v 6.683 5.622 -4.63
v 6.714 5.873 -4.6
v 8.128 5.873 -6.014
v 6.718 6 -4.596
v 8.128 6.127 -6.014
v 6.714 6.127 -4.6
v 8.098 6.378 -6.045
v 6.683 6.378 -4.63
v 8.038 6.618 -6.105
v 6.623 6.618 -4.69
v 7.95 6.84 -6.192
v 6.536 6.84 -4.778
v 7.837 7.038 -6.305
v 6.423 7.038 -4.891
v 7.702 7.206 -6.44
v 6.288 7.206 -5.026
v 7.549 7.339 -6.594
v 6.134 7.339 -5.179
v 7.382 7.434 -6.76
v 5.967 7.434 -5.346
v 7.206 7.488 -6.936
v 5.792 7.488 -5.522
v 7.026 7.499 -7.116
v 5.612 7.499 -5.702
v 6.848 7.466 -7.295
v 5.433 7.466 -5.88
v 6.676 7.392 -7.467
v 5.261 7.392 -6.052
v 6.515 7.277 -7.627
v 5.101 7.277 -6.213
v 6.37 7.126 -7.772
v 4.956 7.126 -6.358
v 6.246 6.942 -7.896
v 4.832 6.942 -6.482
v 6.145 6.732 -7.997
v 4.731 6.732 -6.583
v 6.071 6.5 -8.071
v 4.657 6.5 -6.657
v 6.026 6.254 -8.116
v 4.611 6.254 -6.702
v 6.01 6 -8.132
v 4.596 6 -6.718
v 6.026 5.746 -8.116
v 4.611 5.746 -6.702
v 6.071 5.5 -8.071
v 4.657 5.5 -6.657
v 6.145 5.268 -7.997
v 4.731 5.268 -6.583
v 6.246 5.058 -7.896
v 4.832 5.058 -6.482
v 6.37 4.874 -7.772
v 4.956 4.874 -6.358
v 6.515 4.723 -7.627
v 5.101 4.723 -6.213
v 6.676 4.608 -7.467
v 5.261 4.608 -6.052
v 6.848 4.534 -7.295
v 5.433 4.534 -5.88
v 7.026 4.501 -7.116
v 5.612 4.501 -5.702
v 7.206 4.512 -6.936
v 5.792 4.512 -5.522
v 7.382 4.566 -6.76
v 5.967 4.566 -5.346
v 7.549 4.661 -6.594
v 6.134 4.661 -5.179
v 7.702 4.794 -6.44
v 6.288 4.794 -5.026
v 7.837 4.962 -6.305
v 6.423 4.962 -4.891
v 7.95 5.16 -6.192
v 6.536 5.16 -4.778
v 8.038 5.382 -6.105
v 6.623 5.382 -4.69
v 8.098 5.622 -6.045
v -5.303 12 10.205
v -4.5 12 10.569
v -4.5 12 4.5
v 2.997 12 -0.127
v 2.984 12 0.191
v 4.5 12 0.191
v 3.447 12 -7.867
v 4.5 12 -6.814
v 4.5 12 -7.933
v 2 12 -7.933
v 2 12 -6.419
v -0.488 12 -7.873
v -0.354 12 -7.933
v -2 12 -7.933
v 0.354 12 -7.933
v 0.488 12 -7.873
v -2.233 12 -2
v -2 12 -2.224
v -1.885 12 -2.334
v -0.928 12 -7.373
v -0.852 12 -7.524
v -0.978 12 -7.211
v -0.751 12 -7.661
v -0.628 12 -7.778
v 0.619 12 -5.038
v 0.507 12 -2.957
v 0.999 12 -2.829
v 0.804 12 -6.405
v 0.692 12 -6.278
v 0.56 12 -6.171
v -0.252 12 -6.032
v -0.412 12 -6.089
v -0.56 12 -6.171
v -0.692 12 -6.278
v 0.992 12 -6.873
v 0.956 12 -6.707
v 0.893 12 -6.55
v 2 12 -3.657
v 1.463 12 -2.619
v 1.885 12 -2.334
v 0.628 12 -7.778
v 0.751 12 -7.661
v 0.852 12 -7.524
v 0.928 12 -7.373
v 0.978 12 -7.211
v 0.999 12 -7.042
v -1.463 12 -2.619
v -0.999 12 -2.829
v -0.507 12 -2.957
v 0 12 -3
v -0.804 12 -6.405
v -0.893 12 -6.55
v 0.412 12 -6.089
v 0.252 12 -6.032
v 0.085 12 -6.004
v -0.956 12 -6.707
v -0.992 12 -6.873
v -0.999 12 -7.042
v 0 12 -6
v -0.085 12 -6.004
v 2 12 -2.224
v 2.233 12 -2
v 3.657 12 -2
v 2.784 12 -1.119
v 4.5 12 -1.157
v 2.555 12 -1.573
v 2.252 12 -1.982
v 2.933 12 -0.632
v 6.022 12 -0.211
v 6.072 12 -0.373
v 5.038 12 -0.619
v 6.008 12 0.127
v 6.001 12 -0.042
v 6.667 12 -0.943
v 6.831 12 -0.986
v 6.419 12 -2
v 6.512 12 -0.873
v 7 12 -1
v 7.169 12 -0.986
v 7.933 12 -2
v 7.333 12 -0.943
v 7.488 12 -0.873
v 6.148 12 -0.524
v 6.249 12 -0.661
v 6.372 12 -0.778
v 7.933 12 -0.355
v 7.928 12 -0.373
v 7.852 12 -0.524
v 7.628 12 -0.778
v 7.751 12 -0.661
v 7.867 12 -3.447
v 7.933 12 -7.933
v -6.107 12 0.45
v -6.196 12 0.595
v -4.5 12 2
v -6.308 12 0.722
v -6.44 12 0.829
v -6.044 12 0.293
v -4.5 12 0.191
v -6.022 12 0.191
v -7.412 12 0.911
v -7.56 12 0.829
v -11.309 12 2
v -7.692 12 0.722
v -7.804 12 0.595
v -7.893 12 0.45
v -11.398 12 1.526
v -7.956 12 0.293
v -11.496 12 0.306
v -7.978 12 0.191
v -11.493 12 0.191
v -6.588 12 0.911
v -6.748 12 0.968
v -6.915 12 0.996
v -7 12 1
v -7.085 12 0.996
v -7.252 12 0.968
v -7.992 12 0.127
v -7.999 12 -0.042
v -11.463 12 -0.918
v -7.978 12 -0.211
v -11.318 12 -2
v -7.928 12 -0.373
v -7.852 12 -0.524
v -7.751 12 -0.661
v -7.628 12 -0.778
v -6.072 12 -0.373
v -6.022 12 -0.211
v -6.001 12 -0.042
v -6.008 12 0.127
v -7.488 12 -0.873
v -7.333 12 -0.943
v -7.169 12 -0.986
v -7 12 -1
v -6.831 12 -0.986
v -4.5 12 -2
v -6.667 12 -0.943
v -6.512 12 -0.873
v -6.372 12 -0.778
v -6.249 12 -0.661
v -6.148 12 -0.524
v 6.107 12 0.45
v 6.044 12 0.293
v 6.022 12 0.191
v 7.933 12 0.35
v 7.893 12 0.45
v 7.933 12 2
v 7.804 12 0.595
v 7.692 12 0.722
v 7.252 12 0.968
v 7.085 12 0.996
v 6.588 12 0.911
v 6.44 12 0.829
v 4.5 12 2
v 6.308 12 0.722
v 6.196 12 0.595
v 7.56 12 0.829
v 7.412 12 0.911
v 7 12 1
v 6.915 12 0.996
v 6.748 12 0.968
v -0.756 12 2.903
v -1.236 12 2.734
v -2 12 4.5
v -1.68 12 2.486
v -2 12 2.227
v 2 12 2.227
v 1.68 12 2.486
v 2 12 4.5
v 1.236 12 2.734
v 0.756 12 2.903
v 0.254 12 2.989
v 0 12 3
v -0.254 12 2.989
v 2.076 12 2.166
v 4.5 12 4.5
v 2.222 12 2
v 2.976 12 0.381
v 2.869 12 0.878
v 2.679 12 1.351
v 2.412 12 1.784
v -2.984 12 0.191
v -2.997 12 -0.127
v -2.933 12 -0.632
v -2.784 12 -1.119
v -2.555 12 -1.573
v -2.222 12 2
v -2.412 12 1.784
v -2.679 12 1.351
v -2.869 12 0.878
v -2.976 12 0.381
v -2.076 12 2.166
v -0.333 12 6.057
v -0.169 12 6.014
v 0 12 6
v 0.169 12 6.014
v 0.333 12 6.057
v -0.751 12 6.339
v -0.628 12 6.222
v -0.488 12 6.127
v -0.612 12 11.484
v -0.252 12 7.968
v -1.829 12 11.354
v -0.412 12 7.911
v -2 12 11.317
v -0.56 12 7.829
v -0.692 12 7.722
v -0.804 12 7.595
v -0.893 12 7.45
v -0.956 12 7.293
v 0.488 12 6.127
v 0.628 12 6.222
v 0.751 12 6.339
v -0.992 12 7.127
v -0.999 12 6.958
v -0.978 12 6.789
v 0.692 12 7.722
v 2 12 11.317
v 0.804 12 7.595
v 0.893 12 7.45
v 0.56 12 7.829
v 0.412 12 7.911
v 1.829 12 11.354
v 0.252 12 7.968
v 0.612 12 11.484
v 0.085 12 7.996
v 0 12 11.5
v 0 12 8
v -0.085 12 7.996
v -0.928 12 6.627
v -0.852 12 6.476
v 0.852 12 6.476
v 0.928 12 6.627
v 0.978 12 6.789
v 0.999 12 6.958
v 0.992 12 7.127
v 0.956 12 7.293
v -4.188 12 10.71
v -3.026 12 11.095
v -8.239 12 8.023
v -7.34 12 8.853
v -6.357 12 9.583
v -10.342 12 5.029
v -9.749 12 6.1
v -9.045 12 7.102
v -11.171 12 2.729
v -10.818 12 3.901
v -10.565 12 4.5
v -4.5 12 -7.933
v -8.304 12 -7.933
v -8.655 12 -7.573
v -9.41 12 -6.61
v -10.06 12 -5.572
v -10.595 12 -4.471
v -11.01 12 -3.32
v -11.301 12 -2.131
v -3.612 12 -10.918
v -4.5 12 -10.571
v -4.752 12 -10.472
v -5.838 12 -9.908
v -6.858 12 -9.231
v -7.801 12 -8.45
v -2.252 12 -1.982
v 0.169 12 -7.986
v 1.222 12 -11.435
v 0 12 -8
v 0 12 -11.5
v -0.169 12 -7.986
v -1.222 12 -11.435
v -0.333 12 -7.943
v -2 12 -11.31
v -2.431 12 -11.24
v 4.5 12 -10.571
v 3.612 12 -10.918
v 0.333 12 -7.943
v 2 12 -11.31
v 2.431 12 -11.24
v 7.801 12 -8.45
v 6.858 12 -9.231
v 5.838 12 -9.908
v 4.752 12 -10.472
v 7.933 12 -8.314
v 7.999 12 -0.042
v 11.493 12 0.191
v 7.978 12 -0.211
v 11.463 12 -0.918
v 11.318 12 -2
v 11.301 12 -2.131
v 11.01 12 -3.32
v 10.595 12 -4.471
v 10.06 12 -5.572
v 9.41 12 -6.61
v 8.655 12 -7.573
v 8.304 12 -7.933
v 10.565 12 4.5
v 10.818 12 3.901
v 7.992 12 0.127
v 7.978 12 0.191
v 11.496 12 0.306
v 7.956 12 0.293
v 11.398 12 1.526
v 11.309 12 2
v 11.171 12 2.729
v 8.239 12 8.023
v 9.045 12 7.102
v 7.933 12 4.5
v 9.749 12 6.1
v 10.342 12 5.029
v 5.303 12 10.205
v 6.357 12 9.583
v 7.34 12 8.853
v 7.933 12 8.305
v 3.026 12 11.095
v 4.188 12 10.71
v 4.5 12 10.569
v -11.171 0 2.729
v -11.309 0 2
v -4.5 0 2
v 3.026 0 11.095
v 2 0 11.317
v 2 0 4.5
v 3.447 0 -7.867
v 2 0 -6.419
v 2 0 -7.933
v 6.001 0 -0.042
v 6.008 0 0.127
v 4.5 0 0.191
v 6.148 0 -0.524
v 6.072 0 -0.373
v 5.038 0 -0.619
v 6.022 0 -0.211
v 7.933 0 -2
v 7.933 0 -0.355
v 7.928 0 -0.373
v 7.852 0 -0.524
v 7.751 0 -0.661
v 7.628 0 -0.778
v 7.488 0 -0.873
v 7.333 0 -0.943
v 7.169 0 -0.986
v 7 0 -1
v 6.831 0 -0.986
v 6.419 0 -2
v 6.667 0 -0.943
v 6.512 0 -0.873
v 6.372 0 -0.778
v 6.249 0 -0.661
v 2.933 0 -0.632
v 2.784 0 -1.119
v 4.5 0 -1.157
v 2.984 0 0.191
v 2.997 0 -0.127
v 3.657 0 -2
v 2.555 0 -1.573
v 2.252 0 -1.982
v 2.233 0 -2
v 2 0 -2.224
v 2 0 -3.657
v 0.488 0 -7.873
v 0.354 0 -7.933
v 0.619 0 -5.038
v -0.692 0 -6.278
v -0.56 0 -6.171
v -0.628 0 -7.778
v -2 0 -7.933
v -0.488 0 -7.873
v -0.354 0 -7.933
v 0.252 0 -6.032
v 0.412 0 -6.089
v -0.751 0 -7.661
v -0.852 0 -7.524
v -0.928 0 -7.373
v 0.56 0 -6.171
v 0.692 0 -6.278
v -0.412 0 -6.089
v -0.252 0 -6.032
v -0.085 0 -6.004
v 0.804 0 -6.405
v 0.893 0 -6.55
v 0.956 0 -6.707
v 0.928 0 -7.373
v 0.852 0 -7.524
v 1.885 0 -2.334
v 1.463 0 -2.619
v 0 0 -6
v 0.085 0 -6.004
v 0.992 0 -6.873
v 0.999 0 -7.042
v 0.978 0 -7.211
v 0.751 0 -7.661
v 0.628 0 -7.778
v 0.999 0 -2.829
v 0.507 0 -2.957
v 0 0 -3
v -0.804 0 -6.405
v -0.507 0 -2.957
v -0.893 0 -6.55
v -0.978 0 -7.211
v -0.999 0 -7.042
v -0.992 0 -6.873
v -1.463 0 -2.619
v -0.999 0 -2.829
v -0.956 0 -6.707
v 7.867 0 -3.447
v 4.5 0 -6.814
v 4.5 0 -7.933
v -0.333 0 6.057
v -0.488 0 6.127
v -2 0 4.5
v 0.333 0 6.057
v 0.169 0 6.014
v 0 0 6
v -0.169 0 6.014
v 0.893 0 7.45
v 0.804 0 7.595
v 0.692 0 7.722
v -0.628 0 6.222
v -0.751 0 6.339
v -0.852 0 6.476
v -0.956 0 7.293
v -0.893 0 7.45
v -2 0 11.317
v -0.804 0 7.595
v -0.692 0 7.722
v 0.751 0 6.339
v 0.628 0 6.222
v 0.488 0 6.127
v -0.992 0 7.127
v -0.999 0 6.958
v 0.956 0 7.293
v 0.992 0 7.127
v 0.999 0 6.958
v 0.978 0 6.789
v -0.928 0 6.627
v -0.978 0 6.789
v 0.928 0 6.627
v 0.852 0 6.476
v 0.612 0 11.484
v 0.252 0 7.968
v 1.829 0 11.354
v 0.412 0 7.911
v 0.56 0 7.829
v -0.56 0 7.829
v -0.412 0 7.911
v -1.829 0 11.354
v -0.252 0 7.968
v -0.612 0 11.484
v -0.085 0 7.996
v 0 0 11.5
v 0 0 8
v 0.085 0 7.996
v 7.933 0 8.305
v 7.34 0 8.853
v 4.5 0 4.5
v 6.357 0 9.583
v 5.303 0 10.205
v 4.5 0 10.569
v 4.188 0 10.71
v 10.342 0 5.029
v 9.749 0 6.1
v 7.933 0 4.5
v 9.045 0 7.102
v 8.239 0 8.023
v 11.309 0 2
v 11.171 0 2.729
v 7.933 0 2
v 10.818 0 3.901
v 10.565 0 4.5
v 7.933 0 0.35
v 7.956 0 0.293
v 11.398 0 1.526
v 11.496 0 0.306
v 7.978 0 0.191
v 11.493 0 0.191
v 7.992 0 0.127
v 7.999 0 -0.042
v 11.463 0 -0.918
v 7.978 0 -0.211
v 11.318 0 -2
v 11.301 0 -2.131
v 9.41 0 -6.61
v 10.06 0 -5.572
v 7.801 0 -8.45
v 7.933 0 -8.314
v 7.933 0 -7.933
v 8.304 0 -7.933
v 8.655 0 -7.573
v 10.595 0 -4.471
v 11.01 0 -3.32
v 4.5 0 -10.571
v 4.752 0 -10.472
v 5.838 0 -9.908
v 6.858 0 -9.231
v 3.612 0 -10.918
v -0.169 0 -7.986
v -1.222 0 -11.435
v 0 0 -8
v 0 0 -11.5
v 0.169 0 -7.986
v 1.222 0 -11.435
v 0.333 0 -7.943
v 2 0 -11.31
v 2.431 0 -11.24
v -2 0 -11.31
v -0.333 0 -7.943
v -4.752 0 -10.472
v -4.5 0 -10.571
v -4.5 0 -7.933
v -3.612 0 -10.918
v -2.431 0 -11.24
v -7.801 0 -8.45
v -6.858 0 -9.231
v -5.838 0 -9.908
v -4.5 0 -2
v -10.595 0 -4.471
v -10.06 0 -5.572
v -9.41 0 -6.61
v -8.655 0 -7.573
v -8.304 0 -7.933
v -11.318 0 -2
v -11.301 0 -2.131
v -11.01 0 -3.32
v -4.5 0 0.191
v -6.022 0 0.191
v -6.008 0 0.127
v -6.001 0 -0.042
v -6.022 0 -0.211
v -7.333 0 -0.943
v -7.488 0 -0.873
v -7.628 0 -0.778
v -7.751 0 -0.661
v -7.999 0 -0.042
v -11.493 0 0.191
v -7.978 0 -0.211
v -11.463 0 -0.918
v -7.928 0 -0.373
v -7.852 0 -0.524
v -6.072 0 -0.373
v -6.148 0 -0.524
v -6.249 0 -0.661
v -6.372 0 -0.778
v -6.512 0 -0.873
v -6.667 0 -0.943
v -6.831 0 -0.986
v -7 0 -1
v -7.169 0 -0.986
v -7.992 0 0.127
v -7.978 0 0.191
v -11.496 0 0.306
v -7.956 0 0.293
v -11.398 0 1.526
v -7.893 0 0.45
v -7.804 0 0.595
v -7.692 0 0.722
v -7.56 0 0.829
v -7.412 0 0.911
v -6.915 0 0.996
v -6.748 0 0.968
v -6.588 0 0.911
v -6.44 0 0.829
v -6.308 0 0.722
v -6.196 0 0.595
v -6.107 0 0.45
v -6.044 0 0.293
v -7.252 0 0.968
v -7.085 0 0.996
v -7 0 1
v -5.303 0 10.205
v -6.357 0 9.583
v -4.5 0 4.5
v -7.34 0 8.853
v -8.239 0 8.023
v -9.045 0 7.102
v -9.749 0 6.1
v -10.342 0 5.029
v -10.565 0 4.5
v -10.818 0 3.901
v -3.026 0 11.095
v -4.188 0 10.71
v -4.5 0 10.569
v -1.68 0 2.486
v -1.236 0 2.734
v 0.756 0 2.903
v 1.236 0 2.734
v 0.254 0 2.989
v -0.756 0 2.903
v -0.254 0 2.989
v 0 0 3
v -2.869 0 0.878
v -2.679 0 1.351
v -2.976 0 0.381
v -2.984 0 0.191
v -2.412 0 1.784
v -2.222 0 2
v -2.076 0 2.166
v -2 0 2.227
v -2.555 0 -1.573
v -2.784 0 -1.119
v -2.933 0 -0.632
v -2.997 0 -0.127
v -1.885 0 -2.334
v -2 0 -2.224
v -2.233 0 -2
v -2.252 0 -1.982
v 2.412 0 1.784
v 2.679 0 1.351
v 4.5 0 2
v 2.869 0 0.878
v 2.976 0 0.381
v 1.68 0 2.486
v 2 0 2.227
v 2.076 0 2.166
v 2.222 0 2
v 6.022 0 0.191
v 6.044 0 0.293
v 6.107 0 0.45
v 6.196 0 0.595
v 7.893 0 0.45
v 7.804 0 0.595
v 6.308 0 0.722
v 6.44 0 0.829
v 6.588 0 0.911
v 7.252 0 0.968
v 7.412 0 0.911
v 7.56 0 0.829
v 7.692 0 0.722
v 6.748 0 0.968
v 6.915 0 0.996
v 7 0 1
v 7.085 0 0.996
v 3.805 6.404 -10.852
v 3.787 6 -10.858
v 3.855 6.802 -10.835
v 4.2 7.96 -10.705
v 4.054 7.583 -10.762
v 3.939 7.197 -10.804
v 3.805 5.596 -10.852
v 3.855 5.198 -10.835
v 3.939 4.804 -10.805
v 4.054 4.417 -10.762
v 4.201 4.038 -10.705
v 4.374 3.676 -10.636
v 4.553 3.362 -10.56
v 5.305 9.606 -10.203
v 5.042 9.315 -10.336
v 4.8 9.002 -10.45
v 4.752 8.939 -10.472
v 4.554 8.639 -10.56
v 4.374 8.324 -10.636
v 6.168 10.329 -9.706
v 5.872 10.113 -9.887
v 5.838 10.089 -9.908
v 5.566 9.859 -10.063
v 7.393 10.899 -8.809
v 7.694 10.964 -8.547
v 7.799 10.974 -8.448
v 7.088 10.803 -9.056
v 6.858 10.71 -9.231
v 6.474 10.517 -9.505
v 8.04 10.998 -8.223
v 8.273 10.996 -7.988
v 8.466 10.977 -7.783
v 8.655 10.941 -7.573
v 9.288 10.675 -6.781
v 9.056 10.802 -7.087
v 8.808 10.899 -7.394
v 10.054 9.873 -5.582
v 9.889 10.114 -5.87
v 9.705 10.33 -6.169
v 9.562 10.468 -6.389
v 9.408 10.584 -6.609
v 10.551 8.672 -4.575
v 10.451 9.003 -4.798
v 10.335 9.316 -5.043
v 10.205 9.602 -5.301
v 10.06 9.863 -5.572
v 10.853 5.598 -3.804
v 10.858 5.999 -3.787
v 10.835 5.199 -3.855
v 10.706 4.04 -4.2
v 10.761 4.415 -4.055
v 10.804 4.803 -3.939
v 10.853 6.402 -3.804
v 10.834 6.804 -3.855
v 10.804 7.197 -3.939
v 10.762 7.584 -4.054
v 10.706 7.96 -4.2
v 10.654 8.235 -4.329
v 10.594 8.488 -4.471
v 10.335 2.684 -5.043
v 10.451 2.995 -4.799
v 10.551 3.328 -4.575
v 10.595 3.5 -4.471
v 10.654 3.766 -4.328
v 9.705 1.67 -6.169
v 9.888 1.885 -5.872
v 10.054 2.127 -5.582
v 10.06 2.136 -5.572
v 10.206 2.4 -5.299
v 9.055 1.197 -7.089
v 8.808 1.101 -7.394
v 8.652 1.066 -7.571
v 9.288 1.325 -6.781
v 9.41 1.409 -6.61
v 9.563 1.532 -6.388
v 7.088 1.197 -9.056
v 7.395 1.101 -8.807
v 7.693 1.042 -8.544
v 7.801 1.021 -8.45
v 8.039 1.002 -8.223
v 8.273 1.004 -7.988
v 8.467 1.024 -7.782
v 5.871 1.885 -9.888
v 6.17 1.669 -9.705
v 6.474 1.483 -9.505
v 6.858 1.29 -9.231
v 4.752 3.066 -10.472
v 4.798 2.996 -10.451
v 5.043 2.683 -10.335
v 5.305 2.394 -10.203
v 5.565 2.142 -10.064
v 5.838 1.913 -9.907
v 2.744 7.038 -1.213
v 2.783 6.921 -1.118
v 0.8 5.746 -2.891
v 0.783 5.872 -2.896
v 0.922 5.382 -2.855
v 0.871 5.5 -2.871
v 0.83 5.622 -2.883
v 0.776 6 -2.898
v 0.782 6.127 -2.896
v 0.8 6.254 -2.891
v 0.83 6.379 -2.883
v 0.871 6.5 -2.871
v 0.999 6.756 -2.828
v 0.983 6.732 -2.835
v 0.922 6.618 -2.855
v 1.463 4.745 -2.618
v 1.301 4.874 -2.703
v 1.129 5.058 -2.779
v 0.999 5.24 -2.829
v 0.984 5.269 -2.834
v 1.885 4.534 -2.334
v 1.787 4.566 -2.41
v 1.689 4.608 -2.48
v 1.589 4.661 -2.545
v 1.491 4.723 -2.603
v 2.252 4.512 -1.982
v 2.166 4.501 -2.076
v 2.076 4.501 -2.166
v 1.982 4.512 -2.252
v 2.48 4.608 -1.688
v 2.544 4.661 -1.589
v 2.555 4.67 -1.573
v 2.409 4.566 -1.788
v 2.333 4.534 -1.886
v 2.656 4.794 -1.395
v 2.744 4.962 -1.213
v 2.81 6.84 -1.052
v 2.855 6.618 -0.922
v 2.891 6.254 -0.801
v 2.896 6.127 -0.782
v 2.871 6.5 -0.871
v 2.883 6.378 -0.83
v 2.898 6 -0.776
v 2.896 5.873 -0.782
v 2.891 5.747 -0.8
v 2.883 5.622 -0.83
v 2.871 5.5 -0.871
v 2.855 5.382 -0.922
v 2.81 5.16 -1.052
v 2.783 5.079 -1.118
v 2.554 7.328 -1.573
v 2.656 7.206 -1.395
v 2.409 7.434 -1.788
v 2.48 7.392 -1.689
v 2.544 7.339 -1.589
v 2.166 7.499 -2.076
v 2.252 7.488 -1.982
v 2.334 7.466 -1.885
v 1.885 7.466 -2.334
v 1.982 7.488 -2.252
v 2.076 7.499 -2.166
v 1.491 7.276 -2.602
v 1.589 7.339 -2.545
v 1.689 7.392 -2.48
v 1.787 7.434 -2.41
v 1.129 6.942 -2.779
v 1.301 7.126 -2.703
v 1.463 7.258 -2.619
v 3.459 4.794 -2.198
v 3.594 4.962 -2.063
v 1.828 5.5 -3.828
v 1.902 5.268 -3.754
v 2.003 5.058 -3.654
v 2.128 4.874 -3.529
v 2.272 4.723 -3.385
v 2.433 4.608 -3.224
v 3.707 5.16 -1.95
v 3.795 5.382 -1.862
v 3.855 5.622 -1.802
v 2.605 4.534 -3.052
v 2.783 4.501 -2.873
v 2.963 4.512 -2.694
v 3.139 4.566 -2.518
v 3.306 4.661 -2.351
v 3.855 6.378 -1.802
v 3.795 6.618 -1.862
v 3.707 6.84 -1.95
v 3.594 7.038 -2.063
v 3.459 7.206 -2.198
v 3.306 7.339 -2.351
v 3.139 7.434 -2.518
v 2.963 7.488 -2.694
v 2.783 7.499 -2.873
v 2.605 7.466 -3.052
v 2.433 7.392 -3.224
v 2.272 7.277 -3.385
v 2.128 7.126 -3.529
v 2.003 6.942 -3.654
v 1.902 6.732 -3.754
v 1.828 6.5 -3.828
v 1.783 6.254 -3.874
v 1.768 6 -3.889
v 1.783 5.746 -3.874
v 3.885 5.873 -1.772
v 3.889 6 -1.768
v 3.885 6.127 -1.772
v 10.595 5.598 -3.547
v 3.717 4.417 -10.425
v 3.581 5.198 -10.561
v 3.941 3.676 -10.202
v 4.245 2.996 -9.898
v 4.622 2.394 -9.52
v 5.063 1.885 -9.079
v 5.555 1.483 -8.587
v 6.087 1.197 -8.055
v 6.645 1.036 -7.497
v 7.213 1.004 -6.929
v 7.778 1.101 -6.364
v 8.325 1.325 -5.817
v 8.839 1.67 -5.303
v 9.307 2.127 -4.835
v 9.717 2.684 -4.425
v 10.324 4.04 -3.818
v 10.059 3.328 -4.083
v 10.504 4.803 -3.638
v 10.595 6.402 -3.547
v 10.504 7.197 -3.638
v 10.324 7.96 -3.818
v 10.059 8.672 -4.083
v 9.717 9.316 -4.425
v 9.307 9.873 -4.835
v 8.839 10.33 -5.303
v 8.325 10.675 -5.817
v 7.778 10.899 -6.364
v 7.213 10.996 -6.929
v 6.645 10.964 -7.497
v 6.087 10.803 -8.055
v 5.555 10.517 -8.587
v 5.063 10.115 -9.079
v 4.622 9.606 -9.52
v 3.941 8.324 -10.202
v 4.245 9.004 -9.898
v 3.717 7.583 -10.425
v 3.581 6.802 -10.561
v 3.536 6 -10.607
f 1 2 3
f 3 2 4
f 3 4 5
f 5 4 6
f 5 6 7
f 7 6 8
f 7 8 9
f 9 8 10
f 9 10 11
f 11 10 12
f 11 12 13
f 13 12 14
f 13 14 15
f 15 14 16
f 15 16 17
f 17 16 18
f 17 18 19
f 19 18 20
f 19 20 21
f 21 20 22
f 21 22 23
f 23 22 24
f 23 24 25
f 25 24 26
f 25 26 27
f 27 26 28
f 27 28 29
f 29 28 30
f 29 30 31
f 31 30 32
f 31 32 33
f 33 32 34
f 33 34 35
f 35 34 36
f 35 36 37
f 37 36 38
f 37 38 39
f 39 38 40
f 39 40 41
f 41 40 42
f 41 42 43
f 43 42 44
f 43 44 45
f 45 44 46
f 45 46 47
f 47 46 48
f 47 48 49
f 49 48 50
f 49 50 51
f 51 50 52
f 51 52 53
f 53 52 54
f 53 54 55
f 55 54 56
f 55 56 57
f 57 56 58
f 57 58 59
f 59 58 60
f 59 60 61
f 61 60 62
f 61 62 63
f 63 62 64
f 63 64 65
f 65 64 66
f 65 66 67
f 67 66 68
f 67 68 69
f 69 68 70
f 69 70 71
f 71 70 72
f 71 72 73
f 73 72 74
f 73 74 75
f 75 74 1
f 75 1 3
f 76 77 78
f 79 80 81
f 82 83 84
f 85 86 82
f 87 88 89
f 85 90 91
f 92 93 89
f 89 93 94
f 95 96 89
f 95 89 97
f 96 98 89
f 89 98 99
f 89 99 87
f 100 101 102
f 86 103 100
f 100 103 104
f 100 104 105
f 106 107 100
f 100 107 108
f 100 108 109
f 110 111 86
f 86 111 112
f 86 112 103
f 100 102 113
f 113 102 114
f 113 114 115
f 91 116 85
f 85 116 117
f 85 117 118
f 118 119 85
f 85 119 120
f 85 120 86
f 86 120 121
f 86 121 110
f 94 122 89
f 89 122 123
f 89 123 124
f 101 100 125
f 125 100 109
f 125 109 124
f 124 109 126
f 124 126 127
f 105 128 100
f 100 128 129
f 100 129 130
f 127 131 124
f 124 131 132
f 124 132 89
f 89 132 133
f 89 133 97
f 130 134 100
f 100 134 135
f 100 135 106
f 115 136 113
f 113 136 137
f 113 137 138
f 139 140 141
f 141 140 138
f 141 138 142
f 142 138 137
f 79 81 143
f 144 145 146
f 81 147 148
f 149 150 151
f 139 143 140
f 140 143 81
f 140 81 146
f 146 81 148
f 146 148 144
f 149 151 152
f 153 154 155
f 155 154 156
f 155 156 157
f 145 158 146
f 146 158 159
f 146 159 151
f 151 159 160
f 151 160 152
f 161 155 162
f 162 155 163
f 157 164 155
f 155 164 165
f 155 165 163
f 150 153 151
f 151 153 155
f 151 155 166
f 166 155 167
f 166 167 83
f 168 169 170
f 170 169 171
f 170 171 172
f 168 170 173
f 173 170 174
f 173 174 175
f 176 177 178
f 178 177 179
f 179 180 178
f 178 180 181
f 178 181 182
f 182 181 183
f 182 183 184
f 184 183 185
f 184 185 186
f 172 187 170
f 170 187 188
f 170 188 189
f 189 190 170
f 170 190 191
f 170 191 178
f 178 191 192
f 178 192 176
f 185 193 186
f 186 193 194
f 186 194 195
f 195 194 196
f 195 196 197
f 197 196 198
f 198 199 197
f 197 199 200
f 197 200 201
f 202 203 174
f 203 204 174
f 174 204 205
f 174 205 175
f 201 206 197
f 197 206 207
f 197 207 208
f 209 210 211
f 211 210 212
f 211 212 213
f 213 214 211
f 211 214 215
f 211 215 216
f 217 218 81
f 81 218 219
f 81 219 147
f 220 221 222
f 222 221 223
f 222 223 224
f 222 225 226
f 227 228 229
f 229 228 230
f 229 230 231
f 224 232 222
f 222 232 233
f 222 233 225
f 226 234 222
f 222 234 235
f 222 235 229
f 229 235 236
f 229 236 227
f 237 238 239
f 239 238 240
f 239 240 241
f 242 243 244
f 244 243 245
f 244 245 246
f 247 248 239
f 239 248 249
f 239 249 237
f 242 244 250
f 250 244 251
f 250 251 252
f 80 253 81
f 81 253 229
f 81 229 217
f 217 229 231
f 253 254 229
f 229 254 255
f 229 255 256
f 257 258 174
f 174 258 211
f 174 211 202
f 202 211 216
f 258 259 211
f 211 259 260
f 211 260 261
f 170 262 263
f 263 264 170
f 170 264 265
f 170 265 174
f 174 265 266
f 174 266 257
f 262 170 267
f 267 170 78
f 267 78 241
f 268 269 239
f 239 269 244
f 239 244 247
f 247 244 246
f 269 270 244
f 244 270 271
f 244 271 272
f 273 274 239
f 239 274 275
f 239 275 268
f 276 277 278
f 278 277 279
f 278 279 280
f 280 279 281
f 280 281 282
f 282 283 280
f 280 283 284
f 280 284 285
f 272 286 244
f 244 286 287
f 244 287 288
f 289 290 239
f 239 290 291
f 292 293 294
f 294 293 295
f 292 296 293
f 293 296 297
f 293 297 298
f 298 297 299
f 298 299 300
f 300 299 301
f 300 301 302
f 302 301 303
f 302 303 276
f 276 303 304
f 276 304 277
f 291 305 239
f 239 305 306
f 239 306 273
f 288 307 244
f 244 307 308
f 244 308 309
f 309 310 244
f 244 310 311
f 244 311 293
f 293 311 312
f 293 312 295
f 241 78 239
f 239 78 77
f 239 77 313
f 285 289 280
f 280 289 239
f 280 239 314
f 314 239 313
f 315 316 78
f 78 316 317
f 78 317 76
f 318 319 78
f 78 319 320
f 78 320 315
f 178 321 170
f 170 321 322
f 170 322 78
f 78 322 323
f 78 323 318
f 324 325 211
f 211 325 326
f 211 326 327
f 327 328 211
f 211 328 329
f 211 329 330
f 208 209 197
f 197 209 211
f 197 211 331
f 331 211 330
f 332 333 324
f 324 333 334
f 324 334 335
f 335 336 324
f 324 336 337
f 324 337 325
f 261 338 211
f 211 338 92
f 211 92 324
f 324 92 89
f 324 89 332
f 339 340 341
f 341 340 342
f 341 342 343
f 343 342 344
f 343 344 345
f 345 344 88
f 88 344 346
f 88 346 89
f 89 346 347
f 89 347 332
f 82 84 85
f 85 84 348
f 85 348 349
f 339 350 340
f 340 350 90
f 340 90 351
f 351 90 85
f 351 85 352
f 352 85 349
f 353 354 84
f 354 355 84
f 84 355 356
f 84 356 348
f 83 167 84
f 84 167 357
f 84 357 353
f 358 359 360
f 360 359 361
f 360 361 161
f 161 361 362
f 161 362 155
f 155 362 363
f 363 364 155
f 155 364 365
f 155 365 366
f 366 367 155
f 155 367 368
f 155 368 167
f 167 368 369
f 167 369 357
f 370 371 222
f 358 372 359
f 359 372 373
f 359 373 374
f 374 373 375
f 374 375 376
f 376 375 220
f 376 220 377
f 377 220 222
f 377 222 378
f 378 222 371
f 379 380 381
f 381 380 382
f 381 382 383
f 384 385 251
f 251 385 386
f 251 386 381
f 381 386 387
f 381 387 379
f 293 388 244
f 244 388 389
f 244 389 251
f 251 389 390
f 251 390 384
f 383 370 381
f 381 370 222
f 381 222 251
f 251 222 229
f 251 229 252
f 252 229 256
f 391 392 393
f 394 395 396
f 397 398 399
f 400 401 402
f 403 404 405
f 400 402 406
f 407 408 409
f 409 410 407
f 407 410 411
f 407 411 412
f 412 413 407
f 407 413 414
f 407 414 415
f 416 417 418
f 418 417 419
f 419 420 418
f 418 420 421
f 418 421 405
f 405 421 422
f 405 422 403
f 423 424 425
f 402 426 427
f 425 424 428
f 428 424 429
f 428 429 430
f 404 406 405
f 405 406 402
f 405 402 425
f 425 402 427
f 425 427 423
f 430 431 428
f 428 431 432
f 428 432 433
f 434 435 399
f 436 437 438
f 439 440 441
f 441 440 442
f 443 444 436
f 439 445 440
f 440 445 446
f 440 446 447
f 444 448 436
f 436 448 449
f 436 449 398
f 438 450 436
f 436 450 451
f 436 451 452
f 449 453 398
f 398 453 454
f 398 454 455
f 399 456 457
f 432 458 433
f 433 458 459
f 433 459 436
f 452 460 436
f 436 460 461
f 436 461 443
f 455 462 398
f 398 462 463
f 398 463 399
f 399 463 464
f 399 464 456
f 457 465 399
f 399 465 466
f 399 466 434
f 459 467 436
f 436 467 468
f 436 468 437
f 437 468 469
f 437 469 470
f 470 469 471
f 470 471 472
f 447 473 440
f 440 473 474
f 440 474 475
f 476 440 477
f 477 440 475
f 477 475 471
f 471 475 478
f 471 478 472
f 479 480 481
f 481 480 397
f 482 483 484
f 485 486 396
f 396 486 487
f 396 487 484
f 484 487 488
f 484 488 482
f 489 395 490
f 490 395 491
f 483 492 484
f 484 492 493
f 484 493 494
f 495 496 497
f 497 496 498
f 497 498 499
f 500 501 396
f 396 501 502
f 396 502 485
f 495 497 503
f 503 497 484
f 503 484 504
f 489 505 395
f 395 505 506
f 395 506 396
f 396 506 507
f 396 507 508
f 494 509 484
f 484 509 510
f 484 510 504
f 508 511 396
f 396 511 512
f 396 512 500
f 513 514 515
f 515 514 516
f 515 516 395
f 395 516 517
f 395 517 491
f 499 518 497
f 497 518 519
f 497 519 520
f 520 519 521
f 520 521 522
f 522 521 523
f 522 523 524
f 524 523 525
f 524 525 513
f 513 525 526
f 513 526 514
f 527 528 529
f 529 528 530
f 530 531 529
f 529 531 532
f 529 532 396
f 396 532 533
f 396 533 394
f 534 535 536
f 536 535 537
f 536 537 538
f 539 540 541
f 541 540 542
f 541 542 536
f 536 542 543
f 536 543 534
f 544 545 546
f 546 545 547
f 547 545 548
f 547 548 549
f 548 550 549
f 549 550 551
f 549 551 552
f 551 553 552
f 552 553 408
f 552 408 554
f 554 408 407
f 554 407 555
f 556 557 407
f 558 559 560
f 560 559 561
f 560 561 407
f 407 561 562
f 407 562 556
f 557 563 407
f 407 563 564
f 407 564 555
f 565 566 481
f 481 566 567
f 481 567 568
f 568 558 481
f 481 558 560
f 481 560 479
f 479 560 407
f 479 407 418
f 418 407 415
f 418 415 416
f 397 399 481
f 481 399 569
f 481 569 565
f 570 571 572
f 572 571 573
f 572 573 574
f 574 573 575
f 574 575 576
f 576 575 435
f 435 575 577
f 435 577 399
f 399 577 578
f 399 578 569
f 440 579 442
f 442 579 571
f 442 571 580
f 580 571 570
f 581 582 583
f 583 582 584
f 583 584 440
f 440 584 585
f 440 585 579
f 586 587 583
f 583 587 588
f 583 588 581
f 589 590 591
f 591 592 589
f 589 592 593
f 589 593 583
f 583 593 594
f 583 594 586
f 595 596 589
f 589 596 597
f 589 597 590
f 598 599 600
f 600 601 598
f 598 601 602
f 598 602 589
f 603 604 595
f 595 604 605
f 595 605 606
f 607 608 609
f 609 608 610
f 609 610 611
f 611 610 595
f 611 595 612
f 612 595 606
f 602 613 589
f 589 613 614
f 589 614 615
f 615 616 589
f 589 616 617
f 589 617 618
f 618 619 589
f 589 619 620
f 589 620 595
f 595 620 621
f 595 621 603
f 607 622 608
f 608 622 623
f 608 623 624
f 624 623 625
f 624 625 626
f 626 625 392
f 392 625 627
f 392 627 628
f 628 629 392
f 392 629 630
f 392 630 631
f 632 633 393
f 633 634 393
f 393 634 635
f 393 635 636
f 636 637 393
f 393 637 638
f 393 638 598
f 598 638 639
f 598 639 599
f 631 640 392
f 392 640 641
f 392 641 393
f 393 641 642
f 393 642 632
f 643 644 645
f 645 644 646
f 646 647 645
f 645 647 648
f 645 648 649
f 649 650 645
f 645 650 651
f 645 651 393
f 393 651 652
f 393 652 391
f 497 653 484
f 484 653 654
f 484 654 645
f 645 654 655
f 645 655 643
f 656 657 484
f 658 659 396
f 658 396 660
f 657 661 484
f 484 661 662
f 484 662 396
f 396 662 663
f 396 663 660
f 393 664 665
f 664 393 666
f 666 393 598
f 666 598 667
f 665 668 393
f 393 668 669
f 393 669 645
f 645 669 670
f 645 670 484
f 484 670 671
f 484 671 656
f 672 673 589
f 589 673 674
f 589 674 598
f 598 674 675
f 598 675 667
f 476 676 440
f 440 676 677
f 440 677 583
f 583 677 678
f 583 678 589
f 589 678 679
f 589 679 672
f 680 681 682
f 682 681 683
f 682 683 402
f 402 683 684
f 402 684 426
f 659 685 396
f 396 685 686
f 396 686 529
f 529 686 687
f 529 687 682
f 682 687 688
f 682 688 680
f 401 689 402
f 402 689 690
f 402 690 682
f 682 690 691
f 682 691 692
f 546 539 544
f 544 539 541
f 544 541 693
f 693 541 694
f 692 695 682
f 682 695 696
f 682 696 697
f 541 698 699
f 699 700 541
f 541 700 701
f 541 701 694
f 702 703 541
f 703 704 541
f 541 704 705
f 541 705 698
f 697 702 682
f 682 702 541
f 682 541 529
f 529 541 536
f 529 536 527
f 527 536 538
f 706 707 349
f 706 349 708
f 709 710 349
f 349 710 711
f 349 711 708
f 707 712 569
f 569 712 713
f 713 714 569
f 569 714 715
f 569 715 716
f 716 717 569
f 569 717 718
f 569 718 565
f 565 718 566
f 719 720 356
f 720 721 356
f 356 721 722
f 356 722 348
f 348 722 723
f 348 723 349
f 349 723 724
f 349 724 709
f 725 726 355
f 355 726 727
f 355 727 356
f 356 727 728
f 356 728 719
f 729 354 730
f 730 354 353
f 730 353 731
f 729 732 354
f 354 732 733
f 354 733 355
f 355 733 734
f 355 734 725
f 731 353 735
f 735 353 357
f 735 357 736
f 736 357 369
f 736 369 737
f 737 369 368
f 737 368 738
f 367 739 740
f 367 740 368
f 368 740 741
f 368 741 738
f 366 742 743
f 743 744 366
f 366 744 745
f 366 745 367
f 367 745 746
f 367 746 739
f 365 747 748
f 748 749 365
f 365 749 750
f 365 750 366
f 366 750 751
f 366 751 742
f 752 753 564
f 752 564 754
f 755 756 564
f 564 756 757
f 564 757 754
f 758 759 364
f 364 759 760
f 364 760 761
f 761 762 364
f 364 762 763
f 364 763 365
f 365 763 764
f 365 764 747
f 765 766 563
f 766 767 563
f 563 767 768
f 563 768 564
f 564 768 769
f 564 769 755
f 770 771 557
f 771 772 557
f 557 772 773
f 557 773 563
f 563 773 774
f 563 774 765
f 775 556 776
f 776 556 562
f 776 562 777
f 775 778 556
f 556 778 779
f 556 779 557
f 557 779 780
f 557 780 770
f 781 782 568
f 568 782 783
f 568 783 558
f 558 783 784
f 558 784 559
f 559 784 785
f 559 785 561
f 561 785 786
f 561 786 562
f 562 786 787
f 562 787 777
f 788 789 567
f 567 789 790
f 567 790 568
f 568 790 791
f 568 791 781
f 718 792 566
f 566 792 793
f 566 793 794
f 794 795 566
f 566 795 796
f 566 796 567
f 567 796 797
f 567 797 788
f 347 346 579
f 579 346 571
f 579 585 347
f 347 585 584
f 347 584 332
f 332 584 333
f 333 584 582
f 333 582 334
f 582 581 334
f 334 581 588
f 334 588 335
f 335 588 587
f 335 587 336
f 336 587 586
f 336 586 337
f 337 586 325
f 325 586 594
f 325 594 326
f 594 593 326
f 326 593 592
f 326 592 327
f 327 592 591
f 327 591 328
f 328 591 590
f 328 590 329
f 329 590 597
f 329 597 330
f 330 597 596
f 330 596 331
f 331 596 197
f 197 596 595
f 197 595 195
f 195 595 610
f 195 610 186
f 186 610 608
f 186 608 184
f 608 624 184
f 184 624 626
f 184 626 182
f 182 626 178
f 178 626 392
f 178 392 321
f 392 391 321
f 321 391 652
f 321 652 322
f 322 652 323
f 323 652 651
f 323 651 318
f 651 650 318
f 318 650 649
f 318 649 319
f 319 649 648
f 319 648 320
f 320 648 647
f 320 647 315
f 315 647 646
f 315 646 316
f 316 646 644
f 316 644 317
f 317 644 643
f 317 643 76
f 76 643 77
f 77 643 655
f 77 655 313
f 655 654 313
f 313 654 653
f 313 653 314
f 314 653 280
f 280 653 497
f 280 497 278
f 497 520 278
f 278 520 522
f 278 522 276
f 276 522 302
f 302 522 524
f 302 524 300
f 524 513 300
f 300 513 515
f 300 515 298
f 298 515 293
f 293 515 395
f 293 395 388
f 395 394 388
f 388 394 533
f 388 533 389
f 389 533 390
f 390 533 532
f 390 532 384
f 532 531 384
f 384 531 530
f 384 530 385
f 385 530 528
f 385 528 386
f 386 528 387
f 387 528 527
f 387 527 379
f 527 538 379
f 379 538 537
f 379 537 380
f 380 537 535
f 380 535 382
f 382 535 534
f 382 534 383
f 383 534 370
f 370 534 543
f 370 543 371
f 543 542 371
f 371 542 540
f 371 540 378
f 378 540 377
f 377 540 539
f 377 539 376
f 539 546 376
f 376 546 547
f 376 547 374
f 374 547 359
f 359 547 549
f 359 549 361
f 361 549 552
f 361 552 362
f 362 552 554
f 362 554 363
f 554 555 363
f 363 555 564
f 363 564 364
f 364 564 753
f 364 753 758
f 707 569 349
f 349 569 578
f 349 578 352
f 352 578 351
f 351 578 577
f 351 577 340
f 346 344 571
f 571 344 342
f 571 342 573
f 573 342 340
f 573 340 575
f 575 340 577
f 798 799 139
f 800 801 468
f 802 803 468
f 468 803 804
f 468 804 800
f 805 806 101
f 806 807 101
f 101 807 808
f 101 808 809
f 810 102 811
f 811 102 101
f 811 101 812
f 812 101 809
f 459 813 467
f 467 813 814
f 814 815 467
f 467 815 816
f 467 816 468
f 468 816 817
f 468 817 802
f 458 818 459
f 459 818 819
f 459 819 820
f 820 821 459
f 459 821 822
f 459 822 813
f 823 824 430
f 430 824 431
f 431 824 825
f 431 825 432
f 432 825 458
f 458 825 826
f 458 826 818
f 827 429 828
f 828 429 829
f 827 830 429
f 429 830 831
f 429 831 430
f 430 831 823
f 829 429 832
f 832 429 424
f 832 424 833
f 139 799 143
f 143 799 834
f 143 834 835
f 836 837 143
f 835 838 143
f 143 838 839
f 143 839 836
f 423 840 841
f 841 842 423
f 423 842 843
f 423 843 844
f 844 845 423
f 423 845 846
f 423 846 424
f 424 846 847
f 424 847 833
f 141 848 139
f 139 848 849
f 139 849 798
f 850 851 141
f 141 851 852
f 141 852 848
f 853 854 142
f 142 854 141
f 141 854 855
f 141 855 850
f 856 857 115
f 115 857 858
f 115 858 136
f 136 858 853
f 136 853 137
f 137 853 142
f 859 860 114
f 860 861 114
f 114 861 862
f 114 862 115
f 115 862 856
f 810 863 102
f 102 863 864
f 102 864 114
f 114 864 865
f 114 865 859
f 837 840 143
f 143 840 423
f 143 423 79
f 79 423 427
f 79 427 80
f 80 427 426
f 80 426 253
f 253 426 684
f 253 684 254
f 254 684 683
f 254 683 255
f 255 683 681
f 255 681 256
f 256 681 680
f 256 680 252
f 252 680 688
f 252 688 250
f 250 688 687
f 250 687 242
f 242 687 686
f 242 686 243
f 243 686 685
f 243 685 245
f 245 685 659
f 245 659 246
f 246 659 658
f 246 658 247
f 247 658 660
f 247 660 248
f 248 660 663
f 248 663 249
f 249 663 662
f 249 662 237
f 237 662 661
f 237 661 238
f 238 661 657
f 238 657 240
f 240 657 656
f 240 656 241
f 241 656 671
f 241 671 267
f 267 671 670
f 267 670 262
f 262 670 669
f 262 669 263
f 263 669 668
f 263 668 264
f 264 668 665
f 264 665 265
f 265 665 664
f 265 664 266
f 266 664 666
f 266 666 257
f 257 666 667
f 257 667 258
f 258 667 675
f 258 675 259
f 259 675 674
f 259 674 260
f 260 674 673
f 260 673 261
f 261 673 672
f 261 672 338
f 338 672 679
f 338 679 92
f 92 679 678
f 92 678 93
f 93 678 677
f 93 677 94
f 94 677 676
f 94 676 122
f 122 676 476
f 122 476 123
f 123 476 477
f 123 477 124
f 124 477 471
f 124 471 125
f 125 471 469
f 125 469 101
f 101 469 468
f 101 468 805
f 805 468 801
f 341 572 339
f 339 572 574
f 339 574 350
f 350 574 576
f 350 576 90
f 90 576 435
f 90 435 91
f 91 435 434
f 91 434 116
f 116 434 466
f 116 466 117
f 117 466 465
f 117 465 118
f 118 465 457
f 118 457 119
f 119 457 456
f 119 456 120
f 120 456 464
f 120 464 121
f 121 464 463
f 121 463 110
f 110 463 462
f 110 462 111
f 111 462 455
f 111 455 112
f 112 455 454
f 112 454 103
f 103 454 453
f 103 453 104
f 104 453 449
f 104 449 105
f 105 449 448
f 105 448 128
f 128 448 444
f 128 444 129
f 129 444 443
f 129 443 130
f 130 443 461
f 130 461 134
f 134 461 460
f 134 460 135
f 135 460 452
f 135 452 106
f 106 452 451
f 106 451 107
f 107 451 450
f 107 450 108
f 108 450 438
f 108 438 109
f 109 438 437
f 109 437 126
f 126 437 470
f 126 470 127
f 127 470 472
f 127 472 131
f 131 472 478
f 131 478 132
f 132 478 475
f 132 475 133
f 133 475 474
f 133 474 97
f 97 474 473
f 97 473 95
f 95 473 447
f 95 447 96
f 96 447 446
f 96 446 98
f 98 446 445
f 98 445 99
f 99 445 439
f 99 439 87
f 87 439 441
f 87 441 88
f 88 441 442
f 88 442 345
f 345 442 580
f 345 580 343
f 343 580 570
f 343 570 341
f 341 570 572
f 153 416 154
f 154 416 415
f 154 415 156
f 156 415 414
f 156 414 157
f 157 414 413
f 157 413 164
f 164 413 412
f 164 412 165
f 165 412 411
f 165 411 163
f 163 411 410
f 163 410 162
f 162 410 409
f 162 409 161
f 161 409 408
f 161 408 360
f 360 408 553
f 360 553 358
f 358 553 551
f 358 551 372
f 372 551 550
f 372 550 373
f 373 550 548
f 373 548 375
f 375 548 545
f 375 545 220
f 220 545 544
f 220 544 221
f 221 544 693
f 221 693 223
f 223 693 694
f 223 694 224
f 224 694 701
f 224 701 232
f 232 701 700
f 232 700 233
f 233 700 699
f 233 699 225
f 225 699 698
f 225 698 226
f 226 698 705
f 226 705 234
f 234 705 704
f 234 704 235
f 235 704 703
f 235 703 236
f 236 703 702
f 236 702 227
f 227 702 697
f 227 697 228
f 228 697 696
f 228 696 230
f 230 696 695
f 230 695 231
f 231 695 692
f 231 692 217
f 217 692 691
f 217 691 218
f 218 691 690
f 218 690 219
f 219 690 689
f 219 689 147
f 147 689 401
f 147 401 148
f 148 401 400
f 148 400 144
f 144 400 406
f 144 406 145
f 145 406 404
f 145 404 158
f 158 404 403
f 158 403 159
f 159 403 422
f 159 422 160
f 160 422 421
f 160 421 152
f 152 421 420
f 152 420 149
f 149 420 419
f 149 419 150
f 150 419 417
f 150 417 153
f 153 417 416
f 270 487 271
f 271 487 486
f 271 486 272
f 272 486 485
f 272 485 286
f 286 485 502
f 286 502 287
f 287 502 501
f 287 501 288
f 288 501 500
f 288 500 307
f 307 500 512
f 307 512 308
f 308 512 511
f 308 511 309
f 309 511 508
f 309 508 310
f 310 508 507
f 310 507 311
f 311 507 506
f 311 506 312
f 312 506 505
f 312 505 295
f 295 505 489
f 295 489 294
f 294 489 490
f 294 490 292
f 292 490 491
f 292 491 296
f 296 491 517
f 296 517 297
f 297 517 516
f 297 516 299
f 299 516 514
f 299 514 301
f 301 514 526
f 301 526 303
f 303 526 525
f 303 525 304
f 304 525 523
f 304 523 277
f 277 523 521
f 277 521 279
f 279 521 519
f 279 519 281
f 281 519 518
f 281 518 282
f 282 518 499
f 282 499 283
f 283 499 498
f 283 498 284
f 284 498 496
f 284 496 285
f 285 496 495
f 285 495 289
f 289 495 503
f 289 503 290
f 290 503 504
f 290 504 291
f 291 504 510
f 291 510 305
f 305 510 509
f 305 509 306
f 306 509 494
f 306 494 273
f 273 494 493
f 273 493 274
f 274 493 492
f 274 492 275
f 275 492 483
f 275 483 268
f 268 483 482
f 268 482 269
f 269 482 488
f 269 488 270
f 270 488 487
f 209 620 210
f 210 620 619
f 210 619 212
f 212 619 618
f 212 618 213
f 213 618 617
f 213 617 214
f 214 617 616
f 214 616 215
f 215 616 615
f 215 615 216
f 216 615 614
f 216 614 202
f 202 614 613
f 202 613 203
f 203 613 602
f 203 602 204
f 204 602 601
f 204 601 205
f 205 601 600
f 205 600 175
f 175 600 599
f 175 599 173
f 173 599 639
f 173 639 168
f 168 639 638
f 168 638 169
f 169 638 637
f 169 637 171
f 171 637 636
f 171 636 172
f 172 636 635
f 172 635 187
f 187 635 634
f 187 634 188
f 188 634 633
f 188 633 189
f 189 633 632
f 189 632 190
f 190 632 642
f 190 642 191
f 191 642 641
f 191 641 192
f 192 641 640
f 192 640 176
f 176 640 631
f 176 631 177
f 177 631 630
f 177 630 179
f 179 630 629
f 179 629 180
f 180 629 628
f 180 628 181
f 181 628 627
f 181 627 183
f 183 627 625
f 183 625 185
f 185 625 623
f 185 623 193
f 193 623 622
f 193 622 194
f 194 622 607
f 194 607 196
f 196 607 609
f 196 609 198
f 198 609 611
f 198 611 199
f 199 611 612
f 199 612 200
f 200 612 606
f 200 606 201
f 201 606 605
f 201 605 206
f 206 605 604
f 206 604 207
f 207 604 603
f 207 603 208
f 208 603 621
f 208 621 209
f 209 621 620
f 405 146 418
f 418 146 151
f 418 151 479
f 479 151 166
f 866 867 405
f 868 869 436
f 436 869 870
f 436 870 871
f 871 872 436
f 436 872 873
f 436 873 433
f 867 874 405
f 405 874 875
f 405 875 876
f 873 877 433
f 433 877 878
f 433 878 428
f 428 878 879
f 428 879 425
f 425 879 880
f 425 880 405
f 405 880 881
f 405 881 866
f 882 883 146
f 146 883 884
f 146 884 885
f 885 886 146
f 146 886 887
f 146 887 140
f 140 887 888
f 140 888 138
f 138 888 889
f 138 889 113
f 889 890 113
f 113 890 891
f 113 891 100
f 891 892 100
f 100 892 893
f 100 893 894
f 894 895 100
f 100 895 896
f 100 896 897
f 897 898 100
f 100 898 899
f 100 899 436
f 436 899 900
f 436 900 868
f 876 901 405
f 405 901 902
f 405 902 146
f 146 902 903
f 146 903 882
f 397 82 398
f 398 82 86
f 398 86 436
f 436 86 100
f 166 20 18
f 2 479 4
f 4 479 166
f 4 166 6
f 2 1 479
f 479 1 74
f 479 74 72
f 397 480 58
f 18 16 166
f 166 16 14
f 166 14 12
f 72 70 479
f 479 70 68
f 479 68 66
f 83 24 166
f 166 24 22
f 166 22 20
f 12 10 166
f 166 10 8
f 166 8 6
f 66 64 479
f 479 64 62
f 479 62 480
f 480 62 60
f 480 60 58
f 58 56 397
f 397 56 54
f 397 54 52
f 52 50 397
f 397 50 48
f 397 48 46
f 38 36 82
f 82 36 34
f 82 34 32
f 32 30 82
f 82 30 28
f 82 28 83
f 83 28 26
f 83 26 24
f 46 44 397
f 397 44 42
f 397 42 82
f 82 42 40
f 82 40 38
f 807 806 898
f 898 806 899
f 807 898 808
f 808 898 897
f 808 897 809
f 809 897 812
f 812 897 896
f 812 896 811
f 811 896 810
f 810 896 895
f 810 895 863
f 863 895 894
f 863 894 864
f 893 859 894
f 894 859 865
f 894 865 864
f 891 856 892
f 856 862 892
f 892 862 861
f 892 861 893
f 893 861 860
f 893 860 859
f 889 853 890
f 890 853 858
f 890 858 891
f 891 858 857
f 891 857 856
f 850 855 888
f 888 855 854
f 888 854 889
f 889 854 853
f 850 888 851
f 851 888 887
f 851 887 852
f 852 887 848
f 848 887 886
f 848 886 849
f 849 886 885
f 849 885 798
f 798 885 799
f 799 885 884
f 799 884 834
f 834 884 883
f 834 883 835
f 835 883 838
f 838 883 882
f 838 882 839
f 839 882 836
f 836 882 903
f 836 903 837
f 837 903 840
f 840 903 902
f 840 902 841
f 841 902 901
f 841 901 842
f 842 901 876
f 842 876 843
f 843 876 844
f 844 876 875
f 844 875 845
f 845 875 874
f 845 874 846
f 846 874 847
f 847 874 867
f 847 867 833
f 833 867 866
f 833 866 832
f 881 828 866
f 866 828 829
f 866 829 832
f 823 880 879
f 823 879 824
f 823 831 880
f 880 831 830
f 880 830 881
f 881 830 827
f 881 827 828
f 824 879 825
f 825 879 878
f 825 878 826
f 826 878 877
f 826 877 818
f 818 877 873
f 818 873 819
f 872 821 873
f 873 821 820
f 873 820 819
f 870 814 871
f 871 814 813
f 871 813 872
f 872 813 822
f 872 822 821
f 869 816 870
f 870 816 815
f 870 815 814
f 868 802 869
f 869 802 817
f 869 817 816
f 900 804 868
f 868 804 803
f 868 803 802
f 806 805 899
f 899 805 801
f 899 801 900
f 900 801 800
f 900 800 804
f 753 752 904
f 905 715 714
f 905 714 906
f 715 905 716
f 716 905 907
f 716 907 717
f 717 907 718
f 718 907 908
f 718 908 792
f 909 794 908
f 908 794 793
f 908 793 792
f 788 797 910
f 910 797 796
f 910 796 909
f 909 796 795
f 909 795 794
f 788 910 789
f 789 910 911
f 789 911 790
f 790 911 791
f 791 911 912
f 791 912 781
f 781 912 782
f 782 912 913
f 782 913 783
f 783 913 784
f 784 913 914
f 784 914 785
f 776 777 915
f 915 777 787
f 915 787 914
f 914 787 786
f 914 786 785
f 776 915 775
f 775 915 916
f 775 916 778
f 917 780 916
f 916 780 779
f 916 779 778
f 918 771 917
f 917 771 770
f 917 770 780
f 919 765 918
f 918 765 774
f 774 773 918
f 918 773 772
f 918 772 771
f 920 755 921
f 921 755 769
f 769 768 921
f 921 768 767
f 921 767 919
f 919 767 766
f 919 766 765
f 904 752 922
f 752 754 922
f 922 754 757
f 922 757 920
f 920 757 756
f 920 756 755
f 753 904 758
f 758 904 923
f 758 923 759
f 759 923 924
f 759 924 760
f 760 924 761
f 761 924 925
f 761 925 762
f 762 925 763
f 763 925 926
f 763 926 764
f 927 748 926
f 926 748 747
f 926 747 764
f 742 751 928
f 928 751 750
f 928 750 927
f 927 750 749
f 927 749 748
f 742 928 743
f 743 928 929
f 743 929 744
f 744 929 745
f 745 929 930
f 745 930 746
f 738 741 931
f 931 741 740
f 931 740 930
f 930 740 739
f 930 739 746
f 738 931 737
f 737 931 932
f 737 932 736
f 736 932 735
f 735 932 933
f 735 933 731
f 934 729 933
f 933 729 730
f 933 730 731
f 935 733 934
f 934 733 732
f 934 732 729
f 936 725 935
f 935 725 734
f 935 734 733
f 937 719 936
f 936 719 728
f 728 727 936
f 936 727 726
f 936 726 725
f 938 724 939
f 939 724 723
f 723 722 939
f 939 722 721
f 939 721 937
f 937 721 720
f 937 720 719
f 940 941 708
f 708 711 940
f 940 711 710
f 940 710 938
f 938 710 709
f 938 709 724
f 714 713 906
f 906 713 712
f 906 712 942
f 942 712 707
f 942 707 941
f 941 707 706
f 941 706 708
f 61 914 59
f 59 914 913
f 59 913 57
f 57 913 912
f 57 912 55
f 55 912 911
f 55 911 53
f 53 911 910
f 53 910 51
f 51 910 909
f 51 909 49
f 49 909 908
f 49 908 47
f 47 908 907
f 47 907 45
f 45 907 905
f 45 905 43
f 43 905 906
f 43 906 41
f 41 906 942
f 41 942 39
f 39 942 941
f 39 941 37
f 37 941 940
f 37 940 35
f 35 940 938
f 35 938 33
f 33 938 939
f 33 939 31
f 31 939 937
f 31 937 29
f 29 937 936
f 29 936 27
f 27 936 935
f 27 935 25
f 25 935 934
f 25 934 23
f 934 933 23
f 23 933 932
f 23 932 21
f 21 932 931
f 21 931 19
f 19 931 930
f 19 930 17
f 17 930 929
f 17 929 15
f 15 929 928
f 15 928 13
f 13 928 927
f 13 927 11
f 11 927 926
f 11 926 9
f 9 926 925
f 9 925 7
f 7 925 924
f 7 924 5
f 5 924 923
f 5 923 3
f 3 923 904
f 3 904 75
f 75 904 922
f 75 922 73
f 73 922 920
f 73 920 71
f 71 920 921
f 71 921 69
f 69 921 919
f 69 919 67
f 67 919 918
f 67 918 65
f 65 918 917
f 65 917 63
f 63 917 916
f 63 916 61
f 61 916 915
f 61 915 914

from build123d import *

# Parameters (mm, degrees)
CROQUIS1_R              = 11.5
CROQUIS1_R_2            = 3
CROQUIS1_R_3            = 1
SALIENTE_EXTRUIR1_DEPTH = 12
CORTAR_EXTRUIR1_DEPTH   = 13
CORTAR_EXTRUIR2_START   = 10
CROQUIS3_R              = 1.5
CORTAR_EXTRUIR2_DEPTH   = 12
CORTAR_EXTRUIR3_START   = 10
CROQUIS4_R              = 5
CORTAR_EXTRUIR3_DEPTH   = 4


with BuildPart() as part:
    # Croquis1 → Saliente-Extruir1 (new body)
    with BuildSketch(Plane(origin=(0, 0, 0), x_dir=(1, 0, 0), z_dir=(0, 1, 0))):
        Circle(CROQUIS1_R)
        Circle(CROQUIS1_R_2, mode=Mode.SUBTRACT)
        with Locations((0, 7)):
            Circle(CROQUIS1_R_3, mode=Mode.SUBTRACT)
        with Locations((7, 0)):
            Circle(CROQUIS1_R_3, mode=Mode.SUBTRACT)
        with Locations((0, -7)):
            Circle(CROQUIS1_R_3, mode=Mode.SUBTRACT)
        with Locations((-7, 0)):
            Circle(CROQUIS1_R_3, mode=Mode.SUBTRACT)
    extrude(amount=SALIENTE_EXTRUIR1_DEPTH)

    # Croquis2 → Cortar-Extruir1 (cut, through all)
    with BuildSketch(Plane(origin=(0, 12, 0), x_dir=(1, 0, 0), z_dir=(0, 1, 0))):
        Polygon((7.866562941, 3.447145558), (5.038135816, 0.618718434), (2.828427125, 2.828427125), (5.656854249, 5.656854249), align=None)
        Polygon((5.656854249, 5.656854249), (3.447145558, 7.866562941), (0.618718434, 5.038135816), (2.828427125, 2.828427125), align=None)
    extrude(amount=-CORTAR_EXTRUIR1_DEPTH, mode=Mode.SUBTRACT)

    # Croquis3 → Cortar-Extruir2 (cut)
    with BuildSketch(Plane(origin=(2.828427125, 0, -2.828427125), x_dir=(-0.707106781, 0, -0.707106781), z_dir=(0.707106781, 0, -0.707106781)).offset(CORTAR_EXTRUIR2_START)):
        with Locations((0, 6)):
            Circle(CROQUIS3_R)
    extrude(amount=-CORTAR_EXTRUIR2_DEPTH, mode=Mode.SUBTRACT)

    # Croquis4 → Cortar-Extruir3 (cut)
    with BuildSketch(Plane(origin=(2.828427125, 0, -2.828427125), x_dir=(-0.707106781, 0, -0.707106781), z_dir=(0.707106781, 0, -0.707106781)).offset(CORTAR_EXTRUIR3_START)):
        with Locations((0, 6)):
            Circle(CROQUIS4_R)
    extrude(amount=-CORTAR_EXTRUIR3_DEPTH, mode=Mode.SUBTRACT)


solid = part.part
